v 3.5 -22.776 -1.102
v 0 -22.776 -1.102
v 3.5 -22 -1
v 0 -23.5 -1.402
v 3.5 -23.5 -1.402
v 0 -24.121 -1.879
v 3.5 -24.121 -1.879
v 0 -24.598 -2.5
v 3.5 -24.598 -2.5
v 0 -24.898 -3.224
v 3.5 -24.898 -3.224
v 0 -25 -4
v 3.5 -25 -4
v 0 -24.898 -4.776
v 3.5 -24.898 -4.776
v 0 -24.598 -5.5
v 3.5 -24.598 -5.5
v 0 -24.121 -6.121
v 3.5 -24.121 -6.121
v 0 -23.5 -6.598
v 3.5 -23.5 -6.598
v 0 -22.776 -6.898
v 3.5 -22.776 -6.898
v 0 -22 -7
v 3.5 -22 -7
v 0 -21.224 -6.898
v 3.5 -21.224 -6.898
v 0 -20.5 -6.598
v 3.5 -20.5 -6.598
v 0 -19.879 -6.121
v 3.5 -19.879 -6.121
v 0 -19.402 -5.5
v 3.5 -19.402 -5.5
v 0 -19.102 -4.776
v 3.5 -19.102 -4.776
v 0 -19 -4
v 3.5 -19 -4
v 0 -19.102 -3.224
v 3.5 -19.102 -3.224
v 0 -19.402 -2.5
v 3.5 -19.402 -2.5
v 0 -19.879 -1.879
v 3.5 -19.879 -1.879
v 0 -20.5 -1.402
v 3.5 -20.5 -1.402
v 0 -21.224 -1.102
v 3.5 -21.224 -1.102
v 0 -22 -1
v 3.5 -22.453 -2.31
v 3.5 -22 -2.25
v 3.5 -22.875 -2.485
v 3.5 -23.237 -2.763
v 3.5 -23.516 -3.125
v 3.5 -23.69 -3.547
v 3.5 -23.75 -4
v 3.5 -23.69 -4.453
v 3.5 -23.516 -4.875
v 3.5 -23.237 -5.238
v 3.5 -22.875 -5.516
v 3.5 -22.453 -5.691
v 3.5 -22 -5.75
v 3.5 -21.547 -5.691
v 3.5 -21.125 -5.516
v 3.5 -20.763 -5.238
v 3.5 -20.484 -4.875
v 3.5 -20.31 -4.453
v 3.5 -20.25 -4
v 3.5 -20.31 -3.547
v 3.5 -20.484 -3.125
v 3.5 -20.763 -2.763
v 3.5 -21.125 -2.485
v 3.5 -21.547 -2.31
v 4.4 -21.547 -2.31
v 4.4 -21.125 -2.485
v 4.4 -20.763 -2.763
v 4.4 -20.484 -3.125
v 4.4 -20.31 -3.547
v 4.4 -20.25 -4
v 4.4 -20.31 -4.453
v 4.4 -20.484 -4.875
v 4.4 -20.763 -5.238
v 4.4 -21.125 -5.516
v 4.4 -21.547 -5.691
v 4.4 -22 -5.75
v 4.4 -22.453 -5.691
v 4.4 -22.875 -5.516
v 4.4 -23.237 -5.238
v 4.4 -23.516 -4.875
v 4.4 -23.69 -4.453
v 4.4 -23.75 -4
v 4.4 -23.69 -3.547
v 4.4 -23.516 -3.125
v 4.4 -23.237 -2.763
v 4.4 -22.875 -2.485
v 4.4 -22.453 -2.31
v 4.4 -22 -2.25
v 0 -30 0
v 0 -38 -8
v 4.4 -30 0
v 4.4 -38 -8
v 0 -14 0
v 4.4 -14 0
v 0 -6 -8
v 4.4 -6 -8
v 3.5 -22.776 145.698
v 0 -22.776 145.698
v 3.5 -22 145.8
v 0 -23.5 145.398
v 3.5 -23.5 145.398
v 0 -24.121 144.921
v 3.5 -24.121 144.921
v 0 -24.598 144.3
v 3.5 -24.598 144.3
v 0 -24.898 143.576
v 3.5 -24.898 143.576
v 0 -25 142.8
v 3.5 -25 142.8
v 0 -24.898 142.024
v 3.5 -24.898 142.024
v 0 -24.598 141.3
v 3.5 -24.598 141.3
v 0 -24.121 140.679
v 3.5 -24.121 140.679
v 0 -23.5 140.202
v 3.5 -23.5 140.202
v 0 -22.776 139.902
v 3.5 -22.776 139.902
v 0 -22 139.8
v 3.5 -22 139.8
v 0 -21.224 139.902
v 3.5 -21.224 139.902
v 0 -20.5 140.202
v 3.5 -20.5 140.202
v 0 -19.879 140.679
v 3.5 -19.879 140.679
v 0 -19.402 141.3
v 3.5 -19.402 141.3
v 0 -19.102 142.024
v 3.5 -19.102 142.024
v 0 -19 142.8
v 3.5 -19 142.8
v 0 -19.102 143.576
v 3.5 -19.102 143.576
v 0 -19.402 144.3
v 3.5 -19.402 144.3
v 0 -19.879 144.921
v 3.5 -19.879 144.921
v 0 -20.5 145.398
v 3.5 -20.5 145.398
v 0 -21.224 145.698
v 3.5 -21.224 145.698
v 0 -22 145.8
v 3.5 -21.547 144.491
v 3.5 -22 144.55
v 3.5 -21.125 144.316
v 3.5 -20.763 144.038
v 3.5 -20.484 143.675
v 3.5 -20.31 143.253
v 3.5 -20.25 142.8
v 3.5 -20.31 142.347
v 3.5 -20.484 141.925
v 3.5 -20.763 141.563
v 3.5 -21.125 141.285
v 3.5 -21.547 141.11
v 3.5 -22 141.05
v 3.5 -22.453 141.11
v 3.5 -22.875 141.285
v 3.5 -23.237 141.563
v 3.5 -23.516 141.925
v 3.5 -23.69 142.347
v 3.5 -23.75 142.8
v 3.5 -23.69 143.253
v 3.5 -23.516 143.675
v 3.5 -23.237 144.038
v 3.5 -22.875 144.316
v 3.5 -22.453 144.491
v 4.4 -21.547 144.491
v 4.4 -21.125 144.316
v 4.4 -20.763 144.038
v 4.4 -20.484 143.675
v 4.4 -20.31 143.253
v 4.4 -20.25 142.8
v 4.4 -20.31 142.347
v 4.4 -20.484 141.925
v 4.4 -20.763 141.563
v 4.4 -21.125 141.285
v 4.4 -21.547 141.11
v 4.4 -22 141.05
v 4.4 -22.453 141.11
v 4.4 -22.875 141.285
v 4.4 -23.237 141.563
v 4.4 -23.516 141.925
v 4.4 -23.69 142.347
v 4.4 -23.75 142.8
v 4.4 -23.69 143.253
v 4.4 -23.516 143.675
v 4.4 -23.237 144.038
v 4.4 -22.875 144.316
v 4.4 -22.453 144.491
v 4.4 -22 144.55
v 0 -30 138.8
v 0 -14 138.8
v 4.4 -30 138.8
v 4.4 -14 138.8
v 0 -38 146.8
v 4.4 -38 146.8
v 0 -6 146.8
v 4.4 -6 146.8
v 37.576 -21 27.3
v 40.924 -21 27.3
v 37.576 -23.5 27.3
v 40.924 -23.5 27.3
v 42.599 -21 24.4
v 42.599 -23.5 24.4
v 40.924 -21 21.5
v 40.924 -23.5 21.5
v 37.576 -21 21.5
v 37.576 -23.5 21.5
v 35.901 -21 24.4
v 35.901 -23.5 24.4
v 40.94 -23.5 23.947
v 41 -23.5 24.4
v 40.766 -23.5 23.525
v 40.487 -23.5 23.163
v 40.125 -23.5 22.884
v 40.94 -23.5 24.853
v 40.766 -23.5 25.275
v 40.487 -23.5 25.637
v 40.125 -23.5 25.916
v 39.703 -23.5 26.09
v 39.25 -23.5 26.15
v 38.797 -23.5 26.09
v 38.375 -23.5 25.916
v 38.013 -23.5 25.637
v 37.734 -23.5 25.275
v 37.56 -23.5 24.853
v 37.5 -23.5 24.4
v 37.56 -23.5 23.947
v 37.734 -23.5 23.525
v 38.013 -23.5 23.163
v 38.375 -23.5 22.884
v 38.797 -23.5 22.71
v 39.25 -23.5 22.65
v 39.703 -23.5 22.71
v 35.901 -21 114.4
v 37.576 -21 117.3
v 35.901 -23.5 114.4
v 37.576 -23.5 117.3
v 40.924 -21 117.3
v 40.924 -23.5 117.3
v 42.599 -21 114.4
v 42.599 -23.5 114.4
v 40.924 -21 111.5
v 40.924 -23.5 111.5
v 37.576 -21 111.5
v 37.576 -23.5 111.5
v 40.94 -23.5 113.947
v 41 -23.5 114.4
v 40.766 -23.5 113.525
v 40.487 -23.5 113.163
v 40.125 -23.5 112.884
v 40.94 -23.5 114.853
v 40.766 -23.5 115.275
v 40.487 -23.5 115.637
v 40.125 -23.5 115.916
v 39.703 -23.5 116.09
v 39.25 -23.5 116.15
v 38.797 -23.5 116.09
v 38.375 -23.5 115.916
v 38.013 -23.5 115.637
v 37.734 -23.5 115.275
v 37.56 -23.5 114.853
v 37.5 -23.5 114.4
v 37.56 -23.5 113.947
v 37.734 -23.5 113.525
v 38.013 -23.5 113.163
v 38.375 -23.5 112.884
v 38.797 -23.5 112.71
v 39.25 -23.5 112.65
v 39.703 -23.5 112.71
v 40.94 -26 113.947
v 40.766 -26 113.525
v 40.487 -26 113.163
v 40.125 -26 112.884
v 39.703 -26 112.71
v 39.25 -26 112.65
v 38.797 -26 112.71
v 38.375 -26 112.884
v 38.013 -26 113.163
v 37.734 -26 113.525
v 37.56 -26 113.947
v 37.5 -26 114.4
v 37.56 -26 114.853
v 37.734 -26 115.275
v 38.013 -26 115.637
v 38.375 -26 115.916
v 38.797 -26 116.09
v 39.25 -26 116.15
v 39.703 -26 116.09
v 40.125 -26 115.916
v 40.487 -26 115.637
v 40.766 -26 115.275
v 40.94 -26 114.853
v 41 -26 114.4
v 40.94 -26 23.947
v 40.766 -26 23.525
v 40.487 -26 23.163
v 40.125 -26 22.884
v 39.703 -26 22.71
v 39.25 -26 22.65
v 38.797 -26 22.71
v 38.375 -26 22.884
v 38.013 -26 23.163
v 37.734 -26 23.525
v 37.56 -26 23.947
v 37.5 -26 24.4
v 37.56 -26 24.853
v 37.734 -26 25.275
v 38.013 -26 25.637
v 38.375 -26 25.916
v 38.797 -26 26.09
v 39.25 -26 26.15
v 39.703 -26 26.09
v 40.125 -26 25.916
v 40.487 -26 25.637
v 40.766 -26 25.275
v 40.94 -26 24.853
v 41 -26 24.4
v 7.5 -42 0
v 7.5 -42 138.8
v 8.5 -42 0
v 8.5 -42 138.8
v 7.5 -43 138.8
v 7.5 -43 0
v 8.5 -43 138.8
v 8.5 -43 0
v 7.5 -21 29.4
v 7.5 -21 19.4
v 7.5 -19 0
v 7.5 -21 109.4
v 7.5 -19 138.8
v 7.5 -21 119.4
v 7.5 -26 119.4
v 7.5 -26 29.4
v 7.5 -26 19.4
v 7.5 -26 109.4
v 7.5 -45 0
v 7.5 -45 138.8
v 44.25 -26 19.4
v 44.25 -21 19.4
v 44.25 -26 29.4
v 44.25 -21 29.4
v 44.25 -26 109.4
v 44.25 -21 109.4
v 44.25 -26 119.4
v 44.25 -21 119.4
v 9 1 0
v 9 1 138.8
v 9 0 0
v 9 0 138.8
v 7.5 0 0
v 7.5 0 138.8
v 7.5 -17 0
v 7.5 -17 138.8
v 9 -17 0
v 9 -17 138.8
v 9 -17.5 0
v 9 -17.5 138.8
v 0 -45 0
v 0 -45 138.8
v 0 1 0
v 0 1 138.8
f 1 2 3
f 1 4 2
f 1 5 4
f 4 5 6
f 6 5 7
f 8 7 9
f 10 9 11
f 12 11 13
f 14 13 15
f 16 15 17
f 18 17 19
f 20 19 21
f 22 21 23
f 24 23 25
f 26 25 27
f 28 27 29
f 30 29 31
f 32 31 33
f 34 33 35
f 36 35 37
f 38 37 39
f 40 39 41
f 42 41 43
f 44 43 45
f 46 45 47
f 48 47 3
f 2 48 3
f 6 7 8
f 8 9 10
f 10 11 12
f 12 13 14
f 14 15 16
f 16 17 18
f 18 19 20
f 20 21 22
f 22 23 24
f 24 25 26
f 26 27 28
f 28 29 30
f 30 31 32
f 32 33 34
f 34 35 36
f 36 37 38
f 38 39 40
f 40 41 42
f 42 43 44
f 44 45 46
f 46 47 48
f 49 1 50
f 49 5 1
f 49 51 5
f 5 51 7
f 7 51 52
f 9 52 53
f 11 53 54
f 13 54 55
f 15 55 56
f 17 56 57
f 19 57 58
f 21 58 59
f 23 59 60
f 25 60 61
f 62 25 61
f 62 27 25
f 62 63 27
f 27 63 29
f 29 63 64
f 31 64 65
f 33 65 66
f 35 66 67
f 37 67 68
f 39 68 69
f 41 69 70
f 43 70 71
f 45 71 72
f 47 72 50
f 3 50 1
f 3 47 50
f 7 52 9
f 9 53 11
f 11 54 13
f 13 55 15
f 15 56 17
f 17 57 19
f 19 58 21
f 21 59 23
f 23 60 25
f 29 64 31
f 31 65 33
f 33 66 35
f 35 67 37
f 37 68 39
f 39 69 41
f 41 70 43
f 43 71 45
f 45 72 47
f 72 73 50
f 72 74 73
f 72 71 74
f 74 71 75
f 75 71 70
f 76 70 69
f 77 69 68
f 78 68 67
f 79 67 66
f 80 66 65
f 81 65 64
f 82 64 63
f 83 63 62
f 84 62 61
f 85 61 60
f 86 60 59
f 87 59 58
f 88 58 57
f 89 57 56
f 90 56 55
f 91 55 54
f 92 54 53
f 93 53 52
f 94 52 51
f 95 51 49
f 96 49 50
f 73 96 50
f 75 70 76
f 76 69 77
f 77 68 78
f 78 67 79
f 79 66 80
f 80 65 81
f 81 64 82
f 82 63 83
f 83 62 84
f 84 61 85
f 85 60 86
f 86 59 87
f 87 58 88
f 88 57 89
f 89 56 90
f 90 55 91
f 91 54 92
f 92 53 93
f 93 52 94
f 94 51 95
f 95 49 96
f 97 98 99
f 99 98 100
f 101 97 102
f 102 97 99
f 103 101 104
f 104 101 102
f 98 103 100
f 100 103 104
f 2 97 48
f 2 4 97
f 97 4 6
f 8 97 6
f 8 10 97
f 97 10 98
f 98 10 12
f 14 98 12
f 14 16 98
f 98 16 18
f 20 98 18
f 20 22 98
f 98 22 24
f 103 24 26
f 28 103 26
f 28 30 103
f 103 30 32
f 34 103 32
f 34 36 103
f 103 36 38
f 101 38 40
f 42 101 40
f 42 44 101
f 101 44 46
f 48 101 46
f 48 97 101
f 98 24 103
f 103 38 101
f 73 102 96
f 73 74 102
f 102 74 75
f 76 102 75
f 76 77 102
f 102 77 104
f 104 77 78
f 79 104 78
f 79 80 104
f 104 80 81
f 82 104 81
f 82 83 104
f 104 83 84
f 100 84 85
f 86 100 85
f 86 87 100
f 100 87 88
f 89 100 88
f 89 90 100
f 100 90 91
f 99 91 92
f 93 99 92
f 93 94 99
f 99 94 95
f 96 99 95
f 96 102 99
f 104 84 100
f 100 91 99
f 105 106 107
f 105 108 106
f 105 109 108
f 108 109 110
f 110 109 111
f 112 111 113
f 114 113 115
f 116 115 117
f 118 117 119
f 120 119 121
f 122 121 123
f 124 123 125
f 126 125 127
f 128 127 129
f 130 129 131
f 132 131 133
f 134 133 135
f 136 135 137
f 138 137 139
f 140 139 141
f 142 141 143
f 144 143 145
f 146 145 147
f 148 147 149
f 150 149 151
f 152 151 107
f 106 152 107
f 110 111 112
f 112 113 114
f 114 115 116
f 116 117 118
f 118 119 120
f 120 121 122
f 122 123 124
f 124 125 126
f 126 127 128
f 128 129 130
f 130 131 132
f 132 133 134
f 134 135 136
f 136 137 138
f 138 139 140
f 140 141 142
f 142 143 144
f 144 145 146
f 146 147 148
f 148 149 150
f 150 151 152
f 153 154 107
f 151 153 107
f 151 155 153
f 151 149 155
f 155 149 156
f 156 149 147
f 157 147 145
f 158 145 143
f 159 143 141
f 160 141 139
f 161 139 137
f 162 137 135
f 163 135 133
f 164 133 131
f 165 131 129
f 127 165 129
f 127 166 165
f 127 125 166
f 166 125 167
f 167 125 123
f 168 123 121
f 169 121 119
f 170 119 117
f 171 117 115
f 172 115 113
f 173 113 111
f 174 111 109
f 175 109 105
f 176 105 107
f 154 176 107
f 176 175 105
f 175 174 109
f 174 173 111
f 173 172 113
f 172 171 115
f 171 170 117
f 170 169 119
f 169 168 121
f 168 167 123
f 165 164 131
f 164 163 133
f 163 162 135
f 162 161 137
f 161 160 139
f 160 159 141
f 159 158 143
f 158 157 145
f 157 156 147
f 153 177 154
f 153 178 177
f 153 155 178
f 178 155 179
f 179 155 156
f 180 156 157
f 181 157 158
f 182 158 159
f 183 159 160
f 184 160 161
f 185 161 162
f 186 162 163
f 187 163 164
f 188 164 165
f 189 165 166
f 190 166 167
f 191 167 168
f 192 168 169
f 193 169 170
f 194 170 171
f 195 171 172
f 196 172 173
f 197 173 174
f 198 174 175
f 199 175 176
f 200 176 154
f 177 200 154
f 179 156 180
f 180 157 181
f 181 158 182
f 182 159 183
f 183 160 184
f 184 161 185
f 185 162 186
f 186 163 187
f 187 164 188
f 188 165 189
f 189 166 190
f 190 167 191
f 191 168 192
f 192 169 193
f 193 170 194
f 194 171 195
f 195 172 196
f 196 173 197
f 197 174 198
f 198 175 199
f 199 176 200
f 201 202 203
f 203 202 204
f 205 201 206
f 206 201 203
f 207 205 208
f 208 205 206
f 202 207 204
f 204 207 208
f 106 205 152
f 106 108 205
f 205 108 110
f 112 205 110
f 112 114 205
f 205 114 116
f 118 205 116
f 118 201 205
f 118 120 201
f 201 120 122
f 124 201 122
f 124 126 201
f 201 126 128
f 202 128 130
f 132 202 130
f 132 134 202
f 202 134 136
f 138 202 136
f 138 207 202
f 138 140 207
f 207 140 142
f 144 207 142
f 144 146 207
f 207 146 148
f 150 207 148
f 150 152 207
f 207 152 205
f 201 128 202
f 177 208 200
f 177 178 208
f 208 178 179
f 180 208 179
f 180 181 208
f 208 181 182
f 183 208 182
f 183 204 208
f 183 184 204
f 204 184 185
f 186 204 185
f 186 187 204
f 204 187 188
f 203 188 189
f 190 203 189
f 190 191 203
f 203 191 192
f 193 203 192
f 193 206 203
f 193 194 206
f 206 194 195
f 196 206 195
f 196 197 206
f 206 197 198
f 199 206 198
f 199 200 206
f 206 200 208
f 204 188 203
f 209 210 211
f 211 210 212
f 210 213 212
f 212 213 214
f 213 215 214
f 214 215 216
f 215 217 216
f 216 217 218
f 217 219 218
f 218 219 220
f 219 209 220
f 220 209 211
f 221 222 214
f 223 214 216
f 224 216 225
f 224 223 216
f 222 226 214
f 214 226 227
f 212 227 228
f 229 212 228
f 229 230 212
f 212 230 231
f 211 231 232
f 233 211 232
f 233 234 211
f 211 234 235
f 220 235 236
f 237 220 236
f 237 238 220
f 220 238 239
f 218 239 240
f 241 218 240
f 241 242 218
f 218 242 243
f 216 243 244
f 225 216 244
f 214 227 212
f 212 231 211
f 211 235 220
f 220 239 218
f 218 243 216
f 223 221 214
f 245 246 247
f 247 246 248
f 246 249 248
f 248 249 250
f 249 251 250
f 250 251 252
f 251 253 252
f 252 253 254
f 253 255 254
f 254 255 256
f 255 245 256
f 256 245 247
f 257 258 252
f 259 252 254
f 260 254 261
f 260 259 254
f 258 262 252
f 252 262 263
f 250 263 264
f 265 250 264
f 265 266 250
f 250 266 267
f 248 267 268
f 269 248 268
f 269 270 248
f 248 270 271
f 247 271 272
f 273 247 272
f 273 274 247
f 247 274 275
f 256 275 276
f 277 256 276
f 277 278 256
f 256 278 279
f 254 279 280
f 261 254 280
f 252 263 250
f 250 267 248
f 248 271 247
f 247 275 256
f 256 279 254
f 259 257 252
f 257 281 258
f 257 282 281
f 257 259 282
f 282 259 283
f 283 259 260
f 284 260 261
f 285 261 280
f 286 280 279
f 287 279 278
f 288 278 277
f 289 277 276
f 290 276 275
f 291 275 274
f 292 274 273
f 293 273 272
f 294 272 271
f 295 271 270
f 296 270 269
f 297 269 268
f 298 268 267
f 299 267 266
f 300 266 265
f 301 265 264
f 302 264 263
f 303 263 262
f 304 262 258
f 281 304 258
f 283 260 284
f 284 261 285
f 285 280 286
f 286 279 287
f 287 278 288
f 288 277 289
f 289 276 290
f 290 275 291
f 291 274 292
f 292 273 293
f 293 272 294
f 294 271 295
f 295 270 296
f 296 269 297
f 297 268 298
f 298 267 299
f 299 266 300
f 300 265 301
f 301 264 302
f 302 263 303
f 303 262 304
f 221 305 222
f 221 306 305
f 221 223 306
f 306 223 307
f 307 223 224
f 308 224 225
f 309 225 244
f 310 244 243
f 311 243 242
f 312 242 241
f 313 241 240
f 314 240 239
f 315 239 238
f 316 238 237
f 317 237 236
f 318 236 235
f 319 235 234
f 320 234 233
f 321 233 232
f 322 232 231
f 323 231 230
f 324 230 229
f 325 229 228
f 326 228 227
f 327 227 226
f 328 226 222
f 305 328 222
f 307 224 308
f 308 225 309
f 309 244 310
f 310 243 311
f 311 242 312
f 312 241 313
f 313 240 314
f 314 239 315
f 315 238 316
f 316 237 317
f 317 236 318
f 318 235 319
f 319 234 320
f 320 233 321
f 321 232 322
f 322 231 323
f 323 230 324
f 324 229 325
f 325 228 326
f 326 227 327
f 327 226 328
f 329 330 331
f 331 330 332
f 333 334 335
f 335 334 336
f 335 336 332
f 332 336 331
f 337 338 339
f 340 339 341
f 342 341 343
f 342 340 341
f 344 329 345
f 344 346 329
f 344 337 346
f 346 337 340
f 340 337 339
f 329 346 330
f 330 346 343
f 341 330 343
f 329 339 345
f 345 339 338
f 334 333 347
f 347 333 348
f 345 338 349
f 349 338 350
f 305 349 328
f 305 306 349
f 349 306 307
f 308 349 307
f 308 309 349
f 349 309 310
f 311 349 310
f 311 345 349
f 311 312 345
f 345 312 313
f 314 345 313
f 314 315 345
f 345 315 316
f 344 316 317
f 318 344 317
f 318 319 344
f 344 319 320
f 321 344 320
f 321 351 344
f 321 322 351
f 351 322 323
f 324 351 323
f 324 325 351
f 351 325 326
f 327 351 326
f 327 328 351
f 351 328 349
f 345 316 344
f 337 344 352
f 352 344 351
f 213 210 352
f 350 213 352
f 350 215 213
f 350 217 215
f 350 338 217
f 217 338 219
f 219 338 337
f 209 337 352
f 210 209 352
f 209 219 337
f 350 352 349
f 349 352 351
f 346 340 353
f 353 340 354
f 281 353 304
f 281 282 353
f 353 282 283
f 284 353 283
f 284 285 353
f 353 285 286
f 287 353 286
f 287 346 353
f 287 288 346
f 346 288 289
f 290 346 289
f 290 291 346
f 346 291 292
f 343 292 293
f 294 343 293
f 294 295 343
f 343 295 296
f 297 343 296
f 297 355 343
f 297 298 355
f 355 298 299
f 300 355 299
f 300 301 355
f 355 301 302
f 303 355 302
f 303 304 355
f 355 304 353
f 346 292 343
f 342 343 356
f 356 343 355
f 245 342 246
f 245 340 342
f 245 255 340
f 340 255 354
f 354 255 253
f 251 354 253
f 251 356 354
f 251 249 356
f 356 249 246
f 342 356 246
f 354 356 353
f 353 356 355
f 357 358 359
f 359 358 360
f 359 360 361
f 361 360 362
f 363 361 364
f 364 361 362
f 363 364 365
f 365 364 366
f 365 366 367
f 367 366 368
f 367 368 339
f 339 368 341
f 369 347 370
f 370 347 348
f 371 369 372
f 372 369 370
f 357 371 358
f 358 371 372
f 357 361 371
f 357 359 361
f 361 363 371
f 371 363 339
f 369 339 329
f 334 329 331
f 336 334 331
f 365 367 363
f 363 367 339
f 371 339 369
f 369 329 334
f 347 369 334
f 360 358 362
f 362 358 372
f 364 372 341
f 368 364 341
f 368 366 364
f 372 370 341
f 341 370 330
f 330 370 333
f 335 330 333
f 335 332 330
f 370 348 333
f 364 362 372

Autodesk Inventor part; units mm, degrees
ref_plane "YZ Plane" through (0, 0, 0) normal (1, 0, 0) x (0, 1, 0)
ref_plane "XZ Plane" through (0, 0, 0) normal (0, 1, 0) x (-1, 0, 0)
ref_plane "XY Plane" through (0, 0, 0) normal (0, 0, 1) x (1, 0, 0)
ref_plane "Arbeitsebene1" through (0, 0, 0) normal (0, 0, 1) x (1, 0, 0)
sketch "Skizze1" plane through (0, 0, 0) normal (0, 0, 1) x (1, 0, 0)
  line L0 (0, 1) -> (9, 1) projected
  line L1 (0, -14) -> (0, 1) projected
  line L2 (0, -45) -> (0, -30) projected
  line L3 (7.5, 0) -> (7.5, -17) projected
  line L4 (9, 0) -> (9, 1) projected
  line L5 (7.5, 0) -> (9, 0) projected
  line L6 (7.5, -17) -> (9, -17) projected
  line L7 (9, -17) -> (9, -17.5) projected
  line L8 (9, -17.5) -> (7.5, -19) projected
  line L9 (0, -14) -> (0, -30)
  line L10 (0, -45) -> (7.5, -45)
  line L11 (7.5, -45) -> (7.5, -19)
  point P0 (0, 0)
extrude "Extrusion1" add sketch "Skizze1" along normal blind 138.8
sketch "Skizze2" plane through (0, -45, 0) normal (-1, 0, 0) x (0, 0, 1)
  line L0 (0, 46) -> (138.8, 46) construction
  line L1 (69.4, 46) -> (69.4, 0) construction
  line L2 (0, 0) -> (138.8, 0) construction
  line L3 (-8.0004, 39) -> (-0.0004, 31) projected
  line L4 (-8.0004, 7) -> (-8.0004, 39) projected
  line L5 (-0.0004, 15) -> (-8.0004, 7) projected
  circle A0 centre (-4.0004, 23) radius 1.75 projected
  line L6 (-0.0004, 31) -> (-0.0004, 15) projected
  line L7 (-8.0004, 39) -> (-0.0004, 31) projected
  line L8 (-8.0004, 7) -> (-8.0004, 39) projected
  line L9 (-0.0004, 15) -> (-8.0004, 7) projected
  line L10 (146.8002, 39.0002) -> (138.8002, 31.0002)
  line L11 (146.8, 7) -> (146.8, 39)
  line L12 (138.8002, 14.9998) -> (146.8002, 6.9998)
  circle A1 centre (142.8004, 23) radius 1.75
  line L13 (138.8, 31) -> (138.8, 15)
  line L14 (146.8002, 39.0002) -> (138.8002, 31.0002)
  line L15 (146.8, 7) -> (146.8, 39)
  line L16 (138.8002, 14.9998) -> (146.8002, 6.9998)
  line L17 (0, 0) -> (0, 46) construction
  line L18 (138.8, 46) -> (138.8, 0) construction
  point P0 (0, 45)
  point P1 (146.8004, 39)
  point P2 (138.8004, 31)
  point P3 (146.8004, 7)
  point P4 (138.8004, 15)
extrude "Extrusion2" add sketch "Skizze2" against normal blind 4.4
sketch "Skizze3" plane through (0, -45, 0) normal (-1, 0, 0) x (0, 0, 1)
  circle A0 centre (-4, 23) radius 1.75 construction
  circle A1 centre (142.8, 23) radius 1.75 construction
  circle A2 centre (-4, 23) radius 3
  circle A3 centre (142.8, 23) radius 3
  point P0 (0, 45)
  dimension "d4" = 6
  dimension "d5" = 6
extrude "Extrusion3" cut sketch "Skizze3" against normal blind 3.5
sketch "Skizze4" plane through (7.5, -45, 0) normal (1, 0, 0) x (0, 0, -1)
  line L0 (-138.8, 0) -> (-138.8, 26) projected
  line L1 (0, 26) -> (0, 0) projected
  line L2 (-138.8, 2) -> (0, 2)
  line L3 (0, 2) -> (0, 3)
  line L4 (0, 3) -> (-138.8, 3)
  line L5 (-138.8, 3) -> (-138.8, 2)
  line L6 (0, 0) -> (-138.8, 0) projected
  point P0 (0, 45)
  dimension "d8" = 1
  dimension "d9" = 2
sketch "Skizze5" plane through (7.5, -45, 0) normal (1, 0, 0) x (0, 0, -1)
  line L0 (-138.8, 0) -> (-138.8, 26) construction
  line L1 (-138.8, 24) -> (0, 24) construction
  line L2 (0, 26) -> (0, 0) construction
  line L3 (-19.4, 24) -> (-29.4, 24)
  line L4 (-29.4, 24) -> (-29.4, 19)
  line L5 (-29.4, 19) -> (-19.4, 19)
  line L6 (-19.4, 19) -> (-19.4, 24)
  line L7 (-109.4, 24) -> (-119.4, 24)
  line L8 (-119.4, 24) -> (-119.4, 19)
  line L9 (-119.4, 19) -> (-109.4, 19)
  line L10 (-109.4, 19) -> (-109.4, 24)
  line L11 (-119.4, 19) -> (-138.8, 19) construction
  line L12 (-19.4, 19) -> (0, 19) construction
  line L13 (0, 26) -> (-138.8, 26) construction
  point P0 (0, 45)
  dimension "d10" = 10
  dimension "d11" = 5
  dimension "d12" = 5
  dimension "d13" = 10
  dimension "d14" = 80
  dimension "d15" = 2
extrude "Extrusion4" add sketch "Skizze5" along normal blind 36.75
extrude "Extrusion5" add sketch "Skizze4" along normal blind 1 contours L0 L4 L1 L2
sketch "Skizze6" plane through (7.5, -26, 19.4) normal (0, -1, 0) x (1, 0, 0)
  circle A0 centre (31.75, 95) radius 1.75
  circle A1 centre (31.75, 5) radius 1.75
  line L0 (36.75, 100) -> (36.75, 90) projected
  line L1 (0, 90) -> (36.75, 90) projected
  line L2 (0, 10) -> (36.75, 10) projected
  line L3 (36.75, 10) -> (36.75, 0) projected
  point P0 (-7.5, -19.4)
  dimension "d20" = 3.5
  dimension "d21" = 3.5
  dimension "d22" = 5
  dimension "d23" = 5
  dimension "d24" = 5
  dimension "d25" = 5
extrude "Extrusion6" cut sketch "Skizze6" against normal blind 10
sketch "Skizze7" plane through (7.5, -21, 29.4) normal (0, 1, 0) x (1, 0, 0)
  circle A0 centre (31.75, 5) radius 1.75 construction
  circle A1 centre (31.75, -85) radius 1.75 construction
  circle A2 centre (31.75, 5) radius 1.75 projected
  line L0 (30.0757, 2.1) -> (28.4014, 5)
  line L1 (28.4014, 5) -> (30.0757, 7.9)
  line L2 (30.0757, 7.9) -> (33.4243, 7.9)
  line L3 (33.4243, 7.9) -> (35.0986, 5)
  line L4 (35.0986, 5) -> (33.4243, 2.1)
  line L5 (33.4243, 2.1) -> (30.0757, 2.1)
  circle A3 centre (31.75, -85) radius 1.75 projected
  line L6 (28.4014, -85) -> (30.0757, -82.1)
  line L7 (30.0757, -82.1) -> (33.4243, -82.1)
  line L8 (33.4243, -82.1) -> (35.0986, -85)
  line L9 (35.0986, -85) -> (33.4243, -87.9)
  line L10 (33.4243, -87.9) -> (30.0757, -87.9)
  line L11 (30.0757, -87.9) -> (28.4014, -85)
  point P0 (-7.5, 29.4)
  dimension "d28" = 5.8
  dimension "d29" = 5.8
extrude "Extrusion7" cut sketch "Skizze7" against normal blind 2.5
equation "\"d12\" = d11"
equation "\"d13\" = d10"
equation "\"d21\" = d20"
equation "\"d23\" = d22"
equation "\"d24\" = d22"
equation "\"d25\" = d22"
equation "\"d29\" = d28"
